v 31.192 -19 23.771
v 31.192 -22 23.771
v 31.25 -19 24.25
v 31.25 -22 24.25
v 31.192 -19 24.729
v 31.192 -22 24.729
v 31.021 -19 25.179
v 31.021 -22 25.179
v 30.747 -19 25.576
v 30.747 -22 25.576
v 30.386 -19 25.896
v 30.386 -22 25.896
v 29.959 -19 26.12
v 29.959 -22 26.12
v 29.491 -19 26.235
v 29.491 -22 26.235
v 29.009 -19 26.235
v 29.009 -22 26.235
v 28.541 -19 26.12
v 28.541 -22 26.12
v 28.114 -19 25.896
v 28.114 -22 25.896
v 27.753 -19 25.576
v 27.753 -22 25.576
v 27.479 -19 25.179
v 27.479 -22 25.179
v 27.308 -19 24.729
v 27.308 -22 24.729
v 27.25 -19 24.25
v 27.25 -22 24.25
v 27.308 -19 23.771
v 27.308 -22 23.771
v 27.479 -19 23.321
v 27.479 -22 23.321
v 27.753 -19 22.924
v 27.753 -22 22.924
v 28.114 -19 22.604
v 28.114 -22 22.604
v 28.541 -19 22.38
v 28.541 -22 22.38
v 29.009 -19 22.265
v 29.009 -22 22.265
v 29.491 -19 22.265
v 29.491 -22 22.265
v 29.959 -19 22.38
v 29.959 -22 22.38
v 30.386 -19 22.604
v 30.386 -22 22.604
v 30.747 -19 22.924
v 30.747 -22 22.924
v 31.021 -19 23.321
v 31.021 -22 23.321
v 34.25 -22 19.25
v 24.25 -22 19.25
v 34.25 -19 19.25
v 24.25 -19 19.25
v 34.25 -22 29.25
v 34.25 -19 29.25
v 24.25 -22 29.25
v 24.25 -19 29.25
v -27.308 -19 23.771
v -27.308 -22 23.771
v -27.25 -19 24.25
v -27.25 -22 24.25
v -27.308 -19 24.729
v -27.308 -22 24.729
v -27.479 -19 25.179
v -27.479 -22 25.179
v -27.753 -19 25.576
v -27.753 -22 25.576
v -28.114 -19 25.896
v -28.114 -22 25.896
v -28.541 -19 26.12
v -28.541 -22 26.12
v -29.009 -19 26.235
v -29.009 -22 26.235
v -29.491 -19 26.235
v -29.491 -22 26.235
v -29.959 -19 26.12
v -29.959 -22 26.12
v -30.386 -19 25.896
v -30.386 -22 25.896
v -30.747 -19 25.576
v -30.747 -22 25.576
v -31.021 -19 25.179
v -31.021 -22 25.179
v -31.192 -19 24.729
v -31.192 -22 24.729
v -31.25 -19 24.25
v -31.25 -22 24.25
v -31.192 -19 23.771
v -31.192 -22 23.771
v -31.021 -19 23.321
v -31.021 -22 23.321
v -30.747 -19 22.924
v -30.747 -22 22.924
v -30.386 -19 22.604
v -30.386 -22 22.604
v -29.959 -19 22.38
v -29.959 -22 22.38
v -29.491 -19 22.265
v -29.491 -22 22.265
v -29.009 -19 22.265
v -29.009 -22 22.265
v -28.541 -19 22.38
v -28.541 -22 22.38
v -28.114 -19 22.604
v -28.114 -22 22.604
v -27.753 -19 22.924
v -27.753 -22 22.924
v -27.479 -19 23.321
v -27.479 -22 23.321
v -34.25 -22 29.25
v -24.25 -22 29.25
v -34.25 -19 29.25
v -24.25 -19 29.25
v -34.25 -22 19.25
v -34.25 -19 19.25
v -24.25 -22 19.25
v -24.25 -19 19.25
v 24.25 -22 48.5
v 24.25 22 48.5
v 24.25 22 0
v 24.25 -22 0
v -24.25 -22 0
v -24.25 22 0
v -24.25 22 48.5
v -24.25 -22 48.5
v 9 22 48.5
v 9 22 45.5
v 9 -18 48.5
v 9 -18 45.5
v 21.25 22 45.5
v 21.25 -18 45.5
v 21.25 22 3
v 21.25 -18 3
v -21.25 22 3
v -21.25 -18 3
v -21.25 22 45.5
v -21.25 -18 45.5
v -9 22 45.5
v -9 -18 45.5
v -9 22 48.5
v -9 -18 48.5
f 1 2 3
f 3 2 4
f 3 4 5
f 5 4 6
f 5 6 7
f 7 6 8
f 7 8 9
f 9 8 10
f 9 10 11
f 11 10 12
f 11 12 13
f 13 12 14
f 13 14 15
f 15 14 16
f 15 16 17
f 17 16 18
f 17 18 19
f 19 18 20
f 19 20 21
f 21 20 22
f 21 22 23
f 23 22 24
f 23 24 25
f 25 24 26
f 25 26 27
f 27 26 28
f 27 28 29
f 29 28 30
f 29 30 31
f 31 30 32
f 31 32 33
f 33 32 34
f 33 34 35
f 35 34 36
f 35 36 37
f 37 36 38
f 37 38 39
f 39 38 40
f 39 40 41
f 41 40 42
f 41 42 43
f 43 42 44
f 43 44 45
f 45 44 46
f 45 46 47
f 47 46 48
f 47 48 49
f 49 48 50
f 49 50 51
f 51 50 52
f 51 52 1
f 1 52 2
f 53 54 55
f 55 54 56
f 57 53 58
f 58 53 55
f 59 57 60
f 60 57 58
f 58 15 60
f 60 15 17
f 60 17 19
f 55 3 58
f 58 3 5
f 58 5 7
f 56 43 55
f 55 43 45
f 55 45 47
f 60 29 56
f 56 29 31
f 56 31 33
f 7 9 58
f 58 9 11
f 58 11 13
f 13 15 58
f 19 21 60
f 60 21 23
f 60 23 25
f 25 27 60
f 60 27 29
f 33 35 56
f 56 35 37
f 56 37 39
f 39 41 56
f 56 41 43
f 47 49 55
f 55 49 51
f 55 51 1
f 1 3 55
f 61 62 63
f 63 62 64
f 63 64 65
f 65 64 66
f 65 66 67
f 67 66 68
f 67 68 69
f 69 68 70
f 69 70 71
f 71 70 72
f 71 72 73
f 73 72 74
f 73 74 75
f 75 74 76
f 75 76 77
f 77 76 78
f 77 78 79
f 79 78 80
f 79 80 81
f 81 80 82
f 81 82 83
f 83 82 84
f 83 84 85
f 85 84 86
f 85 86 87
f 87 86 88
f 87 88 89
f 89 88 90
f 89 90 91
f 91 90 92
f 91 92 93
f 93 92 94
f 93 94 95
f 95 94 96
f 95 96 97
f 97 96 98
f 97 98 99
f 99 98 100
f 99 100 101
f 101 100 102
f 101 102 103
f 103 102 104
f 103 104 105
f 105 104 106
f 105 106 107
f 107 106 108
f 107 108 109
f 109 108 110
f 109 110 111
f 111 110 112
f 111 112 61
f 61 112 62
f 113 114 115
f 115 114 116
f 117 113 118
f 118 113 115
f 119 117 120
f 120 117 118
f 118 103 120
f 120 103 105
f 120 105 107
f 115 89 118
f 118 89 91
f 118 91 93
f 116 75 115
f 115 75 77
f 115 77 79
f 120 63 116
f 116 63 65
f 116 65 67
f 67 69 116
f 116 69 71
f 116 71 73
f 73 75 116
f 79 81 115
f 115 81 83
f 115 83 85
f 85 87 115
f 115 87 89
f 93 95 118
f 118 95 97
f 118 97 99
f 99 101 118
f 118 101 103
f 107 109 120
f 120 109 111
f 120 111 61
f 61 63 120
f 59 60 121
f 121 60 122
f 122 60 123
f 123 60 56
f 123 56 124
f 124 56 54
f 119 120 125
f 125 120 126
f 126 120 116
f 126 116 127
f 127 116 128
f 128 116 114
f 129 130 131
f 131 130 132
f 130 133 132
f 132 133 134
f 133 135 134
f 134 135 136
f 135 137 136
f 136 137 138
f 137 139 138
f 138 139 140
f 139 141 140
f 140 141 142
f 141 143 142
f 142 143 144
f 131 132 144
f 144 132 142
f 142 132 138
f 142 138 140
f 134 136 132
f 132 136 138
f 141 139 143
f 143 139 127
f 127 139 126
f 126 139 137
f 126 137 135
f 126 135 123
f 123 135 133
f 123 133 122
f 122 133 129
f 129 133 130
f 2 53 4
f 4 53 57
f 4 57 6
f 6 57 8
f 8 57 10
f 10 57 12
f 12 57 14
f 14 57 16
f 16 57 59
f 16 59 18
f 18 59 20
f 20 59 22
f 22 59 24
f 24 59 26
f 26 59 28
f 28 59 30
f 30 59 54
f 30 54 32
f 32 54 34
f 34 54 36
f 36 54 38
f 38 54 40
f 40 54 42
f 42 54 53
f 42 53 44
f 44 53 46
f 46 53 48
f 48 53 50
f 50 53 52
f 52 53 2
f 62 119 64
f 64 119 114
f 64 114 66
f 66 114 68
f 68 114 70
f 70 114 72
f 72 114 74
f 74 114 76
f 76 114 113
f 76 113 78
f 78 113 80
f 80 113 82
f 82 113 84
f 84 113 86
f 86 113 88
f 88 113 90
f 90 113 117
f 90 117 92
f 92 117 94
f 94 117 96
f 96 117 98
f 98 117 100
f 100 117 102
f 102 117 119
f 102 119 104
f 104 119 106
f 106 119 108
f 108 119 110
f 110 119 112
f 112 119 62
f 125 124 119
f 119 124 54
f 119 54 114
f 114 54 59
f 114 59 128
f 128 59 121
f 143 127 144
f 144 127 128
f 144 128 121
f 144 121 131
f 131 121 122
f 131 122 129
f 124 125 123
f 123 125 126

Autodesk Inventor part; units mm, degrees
ref_plane "YZ Plane" through (0, 0, 0) normal (1, 0, 0) x (0, 1, 0)
ref_plane "XZ Plane" through (0, 0, 0) normal (0, 1, 0) x (-1, 0, 0)
ref_plane "XY Plane" through (0, 0, 0) normal (0, 0, 1) x (1, 0, 0)
sketch "Boceto1" plane through (0, 0, 0) normal (0, 0, 1) x (1, 0, 0)
  line L0 (-24.25, -22) -> (24.25, -22)
  line L1 (24.25, -22) -> (24.25, 22)
  line L2 (24.25, 22) -> (-24.25, 22)
  line L3 (-24.25, 22) -> (-24.25, -22)
  line L4 (-24.25, -22) -> (24.25, 22) construction
  line L5 (24.25, -22) -> (-24.25, 22) construction
  point P0 (0, 0)
  dimension "d0" = 48.5
  dimension "d1" = 44
extrude "Extrusión1" add sketch "Boceto1" along normal blind 48.5
sketch "Boceto2" plane through (-24.25, 22, 0) normal (0, 1, 0) x (1, 0, 0)
  line L0 (3, -3) -> (45.5, -3)
  line L1 (45.5, -3) -> (45.5, -45.5)
  line L2 (3, -45.5) -> (3, -3)
  line L3 (15.25, -45.5) -> (15.25, -48.5)
  line L4 (33.25, -45.5) -> (33.25, -48.5)
  line L5 (45.5, -45.5) -> (33.25, -45.5)
  line L6 (15.25, -45.5) -> (3, -45.5)
  line L7 (15.25, -48.5) -> (33.25, -48.5)
extrude "Extrusión2" cut sketch "Boceto2" against normal blind 40
sketch "Boceto5" plane through (-24.25, -22, 0) normal (0, -1, 0) x (1, 0, 0)
  line L0 (-10, 19.25) -> (0, 19.25)
  line L1 (0, 29.25) -> (-10, 29.25)
  line L2 (-10, 29.25) -> (-10, 19.25)
  line L3 (0, 0) -> (0, 48.5) projected
  line L4 (0, 19.25) -> (0, 29.25)
  line L5 (48.5, 19.25) -> (58.5, 19.25)
  line L6 (58.5, 19.25) -> (58.5, 29.25)
  line L7 (58.5, 29.25) -> (48.5, 29.25)
  line L8 (48.5, 0) -> (48.5, 48.5) projected
  line L9 (48.5, 19.25) -> (48.5, 29.25)
  circle A0 centre (53.5, 24.25) radius 2
  circle A1 centre (-5, 24.25) radius 2
  point P0 (24.25, 0)
  point P1 (0, 24.25)
  point P2 (48.5, 24.25)
  dimension "d15" = 4
  dimension "d16" = 4
extrude "Extrusión3" add sketch "Boceto5" against normal blind 3
properties part number "_3DPrint"
